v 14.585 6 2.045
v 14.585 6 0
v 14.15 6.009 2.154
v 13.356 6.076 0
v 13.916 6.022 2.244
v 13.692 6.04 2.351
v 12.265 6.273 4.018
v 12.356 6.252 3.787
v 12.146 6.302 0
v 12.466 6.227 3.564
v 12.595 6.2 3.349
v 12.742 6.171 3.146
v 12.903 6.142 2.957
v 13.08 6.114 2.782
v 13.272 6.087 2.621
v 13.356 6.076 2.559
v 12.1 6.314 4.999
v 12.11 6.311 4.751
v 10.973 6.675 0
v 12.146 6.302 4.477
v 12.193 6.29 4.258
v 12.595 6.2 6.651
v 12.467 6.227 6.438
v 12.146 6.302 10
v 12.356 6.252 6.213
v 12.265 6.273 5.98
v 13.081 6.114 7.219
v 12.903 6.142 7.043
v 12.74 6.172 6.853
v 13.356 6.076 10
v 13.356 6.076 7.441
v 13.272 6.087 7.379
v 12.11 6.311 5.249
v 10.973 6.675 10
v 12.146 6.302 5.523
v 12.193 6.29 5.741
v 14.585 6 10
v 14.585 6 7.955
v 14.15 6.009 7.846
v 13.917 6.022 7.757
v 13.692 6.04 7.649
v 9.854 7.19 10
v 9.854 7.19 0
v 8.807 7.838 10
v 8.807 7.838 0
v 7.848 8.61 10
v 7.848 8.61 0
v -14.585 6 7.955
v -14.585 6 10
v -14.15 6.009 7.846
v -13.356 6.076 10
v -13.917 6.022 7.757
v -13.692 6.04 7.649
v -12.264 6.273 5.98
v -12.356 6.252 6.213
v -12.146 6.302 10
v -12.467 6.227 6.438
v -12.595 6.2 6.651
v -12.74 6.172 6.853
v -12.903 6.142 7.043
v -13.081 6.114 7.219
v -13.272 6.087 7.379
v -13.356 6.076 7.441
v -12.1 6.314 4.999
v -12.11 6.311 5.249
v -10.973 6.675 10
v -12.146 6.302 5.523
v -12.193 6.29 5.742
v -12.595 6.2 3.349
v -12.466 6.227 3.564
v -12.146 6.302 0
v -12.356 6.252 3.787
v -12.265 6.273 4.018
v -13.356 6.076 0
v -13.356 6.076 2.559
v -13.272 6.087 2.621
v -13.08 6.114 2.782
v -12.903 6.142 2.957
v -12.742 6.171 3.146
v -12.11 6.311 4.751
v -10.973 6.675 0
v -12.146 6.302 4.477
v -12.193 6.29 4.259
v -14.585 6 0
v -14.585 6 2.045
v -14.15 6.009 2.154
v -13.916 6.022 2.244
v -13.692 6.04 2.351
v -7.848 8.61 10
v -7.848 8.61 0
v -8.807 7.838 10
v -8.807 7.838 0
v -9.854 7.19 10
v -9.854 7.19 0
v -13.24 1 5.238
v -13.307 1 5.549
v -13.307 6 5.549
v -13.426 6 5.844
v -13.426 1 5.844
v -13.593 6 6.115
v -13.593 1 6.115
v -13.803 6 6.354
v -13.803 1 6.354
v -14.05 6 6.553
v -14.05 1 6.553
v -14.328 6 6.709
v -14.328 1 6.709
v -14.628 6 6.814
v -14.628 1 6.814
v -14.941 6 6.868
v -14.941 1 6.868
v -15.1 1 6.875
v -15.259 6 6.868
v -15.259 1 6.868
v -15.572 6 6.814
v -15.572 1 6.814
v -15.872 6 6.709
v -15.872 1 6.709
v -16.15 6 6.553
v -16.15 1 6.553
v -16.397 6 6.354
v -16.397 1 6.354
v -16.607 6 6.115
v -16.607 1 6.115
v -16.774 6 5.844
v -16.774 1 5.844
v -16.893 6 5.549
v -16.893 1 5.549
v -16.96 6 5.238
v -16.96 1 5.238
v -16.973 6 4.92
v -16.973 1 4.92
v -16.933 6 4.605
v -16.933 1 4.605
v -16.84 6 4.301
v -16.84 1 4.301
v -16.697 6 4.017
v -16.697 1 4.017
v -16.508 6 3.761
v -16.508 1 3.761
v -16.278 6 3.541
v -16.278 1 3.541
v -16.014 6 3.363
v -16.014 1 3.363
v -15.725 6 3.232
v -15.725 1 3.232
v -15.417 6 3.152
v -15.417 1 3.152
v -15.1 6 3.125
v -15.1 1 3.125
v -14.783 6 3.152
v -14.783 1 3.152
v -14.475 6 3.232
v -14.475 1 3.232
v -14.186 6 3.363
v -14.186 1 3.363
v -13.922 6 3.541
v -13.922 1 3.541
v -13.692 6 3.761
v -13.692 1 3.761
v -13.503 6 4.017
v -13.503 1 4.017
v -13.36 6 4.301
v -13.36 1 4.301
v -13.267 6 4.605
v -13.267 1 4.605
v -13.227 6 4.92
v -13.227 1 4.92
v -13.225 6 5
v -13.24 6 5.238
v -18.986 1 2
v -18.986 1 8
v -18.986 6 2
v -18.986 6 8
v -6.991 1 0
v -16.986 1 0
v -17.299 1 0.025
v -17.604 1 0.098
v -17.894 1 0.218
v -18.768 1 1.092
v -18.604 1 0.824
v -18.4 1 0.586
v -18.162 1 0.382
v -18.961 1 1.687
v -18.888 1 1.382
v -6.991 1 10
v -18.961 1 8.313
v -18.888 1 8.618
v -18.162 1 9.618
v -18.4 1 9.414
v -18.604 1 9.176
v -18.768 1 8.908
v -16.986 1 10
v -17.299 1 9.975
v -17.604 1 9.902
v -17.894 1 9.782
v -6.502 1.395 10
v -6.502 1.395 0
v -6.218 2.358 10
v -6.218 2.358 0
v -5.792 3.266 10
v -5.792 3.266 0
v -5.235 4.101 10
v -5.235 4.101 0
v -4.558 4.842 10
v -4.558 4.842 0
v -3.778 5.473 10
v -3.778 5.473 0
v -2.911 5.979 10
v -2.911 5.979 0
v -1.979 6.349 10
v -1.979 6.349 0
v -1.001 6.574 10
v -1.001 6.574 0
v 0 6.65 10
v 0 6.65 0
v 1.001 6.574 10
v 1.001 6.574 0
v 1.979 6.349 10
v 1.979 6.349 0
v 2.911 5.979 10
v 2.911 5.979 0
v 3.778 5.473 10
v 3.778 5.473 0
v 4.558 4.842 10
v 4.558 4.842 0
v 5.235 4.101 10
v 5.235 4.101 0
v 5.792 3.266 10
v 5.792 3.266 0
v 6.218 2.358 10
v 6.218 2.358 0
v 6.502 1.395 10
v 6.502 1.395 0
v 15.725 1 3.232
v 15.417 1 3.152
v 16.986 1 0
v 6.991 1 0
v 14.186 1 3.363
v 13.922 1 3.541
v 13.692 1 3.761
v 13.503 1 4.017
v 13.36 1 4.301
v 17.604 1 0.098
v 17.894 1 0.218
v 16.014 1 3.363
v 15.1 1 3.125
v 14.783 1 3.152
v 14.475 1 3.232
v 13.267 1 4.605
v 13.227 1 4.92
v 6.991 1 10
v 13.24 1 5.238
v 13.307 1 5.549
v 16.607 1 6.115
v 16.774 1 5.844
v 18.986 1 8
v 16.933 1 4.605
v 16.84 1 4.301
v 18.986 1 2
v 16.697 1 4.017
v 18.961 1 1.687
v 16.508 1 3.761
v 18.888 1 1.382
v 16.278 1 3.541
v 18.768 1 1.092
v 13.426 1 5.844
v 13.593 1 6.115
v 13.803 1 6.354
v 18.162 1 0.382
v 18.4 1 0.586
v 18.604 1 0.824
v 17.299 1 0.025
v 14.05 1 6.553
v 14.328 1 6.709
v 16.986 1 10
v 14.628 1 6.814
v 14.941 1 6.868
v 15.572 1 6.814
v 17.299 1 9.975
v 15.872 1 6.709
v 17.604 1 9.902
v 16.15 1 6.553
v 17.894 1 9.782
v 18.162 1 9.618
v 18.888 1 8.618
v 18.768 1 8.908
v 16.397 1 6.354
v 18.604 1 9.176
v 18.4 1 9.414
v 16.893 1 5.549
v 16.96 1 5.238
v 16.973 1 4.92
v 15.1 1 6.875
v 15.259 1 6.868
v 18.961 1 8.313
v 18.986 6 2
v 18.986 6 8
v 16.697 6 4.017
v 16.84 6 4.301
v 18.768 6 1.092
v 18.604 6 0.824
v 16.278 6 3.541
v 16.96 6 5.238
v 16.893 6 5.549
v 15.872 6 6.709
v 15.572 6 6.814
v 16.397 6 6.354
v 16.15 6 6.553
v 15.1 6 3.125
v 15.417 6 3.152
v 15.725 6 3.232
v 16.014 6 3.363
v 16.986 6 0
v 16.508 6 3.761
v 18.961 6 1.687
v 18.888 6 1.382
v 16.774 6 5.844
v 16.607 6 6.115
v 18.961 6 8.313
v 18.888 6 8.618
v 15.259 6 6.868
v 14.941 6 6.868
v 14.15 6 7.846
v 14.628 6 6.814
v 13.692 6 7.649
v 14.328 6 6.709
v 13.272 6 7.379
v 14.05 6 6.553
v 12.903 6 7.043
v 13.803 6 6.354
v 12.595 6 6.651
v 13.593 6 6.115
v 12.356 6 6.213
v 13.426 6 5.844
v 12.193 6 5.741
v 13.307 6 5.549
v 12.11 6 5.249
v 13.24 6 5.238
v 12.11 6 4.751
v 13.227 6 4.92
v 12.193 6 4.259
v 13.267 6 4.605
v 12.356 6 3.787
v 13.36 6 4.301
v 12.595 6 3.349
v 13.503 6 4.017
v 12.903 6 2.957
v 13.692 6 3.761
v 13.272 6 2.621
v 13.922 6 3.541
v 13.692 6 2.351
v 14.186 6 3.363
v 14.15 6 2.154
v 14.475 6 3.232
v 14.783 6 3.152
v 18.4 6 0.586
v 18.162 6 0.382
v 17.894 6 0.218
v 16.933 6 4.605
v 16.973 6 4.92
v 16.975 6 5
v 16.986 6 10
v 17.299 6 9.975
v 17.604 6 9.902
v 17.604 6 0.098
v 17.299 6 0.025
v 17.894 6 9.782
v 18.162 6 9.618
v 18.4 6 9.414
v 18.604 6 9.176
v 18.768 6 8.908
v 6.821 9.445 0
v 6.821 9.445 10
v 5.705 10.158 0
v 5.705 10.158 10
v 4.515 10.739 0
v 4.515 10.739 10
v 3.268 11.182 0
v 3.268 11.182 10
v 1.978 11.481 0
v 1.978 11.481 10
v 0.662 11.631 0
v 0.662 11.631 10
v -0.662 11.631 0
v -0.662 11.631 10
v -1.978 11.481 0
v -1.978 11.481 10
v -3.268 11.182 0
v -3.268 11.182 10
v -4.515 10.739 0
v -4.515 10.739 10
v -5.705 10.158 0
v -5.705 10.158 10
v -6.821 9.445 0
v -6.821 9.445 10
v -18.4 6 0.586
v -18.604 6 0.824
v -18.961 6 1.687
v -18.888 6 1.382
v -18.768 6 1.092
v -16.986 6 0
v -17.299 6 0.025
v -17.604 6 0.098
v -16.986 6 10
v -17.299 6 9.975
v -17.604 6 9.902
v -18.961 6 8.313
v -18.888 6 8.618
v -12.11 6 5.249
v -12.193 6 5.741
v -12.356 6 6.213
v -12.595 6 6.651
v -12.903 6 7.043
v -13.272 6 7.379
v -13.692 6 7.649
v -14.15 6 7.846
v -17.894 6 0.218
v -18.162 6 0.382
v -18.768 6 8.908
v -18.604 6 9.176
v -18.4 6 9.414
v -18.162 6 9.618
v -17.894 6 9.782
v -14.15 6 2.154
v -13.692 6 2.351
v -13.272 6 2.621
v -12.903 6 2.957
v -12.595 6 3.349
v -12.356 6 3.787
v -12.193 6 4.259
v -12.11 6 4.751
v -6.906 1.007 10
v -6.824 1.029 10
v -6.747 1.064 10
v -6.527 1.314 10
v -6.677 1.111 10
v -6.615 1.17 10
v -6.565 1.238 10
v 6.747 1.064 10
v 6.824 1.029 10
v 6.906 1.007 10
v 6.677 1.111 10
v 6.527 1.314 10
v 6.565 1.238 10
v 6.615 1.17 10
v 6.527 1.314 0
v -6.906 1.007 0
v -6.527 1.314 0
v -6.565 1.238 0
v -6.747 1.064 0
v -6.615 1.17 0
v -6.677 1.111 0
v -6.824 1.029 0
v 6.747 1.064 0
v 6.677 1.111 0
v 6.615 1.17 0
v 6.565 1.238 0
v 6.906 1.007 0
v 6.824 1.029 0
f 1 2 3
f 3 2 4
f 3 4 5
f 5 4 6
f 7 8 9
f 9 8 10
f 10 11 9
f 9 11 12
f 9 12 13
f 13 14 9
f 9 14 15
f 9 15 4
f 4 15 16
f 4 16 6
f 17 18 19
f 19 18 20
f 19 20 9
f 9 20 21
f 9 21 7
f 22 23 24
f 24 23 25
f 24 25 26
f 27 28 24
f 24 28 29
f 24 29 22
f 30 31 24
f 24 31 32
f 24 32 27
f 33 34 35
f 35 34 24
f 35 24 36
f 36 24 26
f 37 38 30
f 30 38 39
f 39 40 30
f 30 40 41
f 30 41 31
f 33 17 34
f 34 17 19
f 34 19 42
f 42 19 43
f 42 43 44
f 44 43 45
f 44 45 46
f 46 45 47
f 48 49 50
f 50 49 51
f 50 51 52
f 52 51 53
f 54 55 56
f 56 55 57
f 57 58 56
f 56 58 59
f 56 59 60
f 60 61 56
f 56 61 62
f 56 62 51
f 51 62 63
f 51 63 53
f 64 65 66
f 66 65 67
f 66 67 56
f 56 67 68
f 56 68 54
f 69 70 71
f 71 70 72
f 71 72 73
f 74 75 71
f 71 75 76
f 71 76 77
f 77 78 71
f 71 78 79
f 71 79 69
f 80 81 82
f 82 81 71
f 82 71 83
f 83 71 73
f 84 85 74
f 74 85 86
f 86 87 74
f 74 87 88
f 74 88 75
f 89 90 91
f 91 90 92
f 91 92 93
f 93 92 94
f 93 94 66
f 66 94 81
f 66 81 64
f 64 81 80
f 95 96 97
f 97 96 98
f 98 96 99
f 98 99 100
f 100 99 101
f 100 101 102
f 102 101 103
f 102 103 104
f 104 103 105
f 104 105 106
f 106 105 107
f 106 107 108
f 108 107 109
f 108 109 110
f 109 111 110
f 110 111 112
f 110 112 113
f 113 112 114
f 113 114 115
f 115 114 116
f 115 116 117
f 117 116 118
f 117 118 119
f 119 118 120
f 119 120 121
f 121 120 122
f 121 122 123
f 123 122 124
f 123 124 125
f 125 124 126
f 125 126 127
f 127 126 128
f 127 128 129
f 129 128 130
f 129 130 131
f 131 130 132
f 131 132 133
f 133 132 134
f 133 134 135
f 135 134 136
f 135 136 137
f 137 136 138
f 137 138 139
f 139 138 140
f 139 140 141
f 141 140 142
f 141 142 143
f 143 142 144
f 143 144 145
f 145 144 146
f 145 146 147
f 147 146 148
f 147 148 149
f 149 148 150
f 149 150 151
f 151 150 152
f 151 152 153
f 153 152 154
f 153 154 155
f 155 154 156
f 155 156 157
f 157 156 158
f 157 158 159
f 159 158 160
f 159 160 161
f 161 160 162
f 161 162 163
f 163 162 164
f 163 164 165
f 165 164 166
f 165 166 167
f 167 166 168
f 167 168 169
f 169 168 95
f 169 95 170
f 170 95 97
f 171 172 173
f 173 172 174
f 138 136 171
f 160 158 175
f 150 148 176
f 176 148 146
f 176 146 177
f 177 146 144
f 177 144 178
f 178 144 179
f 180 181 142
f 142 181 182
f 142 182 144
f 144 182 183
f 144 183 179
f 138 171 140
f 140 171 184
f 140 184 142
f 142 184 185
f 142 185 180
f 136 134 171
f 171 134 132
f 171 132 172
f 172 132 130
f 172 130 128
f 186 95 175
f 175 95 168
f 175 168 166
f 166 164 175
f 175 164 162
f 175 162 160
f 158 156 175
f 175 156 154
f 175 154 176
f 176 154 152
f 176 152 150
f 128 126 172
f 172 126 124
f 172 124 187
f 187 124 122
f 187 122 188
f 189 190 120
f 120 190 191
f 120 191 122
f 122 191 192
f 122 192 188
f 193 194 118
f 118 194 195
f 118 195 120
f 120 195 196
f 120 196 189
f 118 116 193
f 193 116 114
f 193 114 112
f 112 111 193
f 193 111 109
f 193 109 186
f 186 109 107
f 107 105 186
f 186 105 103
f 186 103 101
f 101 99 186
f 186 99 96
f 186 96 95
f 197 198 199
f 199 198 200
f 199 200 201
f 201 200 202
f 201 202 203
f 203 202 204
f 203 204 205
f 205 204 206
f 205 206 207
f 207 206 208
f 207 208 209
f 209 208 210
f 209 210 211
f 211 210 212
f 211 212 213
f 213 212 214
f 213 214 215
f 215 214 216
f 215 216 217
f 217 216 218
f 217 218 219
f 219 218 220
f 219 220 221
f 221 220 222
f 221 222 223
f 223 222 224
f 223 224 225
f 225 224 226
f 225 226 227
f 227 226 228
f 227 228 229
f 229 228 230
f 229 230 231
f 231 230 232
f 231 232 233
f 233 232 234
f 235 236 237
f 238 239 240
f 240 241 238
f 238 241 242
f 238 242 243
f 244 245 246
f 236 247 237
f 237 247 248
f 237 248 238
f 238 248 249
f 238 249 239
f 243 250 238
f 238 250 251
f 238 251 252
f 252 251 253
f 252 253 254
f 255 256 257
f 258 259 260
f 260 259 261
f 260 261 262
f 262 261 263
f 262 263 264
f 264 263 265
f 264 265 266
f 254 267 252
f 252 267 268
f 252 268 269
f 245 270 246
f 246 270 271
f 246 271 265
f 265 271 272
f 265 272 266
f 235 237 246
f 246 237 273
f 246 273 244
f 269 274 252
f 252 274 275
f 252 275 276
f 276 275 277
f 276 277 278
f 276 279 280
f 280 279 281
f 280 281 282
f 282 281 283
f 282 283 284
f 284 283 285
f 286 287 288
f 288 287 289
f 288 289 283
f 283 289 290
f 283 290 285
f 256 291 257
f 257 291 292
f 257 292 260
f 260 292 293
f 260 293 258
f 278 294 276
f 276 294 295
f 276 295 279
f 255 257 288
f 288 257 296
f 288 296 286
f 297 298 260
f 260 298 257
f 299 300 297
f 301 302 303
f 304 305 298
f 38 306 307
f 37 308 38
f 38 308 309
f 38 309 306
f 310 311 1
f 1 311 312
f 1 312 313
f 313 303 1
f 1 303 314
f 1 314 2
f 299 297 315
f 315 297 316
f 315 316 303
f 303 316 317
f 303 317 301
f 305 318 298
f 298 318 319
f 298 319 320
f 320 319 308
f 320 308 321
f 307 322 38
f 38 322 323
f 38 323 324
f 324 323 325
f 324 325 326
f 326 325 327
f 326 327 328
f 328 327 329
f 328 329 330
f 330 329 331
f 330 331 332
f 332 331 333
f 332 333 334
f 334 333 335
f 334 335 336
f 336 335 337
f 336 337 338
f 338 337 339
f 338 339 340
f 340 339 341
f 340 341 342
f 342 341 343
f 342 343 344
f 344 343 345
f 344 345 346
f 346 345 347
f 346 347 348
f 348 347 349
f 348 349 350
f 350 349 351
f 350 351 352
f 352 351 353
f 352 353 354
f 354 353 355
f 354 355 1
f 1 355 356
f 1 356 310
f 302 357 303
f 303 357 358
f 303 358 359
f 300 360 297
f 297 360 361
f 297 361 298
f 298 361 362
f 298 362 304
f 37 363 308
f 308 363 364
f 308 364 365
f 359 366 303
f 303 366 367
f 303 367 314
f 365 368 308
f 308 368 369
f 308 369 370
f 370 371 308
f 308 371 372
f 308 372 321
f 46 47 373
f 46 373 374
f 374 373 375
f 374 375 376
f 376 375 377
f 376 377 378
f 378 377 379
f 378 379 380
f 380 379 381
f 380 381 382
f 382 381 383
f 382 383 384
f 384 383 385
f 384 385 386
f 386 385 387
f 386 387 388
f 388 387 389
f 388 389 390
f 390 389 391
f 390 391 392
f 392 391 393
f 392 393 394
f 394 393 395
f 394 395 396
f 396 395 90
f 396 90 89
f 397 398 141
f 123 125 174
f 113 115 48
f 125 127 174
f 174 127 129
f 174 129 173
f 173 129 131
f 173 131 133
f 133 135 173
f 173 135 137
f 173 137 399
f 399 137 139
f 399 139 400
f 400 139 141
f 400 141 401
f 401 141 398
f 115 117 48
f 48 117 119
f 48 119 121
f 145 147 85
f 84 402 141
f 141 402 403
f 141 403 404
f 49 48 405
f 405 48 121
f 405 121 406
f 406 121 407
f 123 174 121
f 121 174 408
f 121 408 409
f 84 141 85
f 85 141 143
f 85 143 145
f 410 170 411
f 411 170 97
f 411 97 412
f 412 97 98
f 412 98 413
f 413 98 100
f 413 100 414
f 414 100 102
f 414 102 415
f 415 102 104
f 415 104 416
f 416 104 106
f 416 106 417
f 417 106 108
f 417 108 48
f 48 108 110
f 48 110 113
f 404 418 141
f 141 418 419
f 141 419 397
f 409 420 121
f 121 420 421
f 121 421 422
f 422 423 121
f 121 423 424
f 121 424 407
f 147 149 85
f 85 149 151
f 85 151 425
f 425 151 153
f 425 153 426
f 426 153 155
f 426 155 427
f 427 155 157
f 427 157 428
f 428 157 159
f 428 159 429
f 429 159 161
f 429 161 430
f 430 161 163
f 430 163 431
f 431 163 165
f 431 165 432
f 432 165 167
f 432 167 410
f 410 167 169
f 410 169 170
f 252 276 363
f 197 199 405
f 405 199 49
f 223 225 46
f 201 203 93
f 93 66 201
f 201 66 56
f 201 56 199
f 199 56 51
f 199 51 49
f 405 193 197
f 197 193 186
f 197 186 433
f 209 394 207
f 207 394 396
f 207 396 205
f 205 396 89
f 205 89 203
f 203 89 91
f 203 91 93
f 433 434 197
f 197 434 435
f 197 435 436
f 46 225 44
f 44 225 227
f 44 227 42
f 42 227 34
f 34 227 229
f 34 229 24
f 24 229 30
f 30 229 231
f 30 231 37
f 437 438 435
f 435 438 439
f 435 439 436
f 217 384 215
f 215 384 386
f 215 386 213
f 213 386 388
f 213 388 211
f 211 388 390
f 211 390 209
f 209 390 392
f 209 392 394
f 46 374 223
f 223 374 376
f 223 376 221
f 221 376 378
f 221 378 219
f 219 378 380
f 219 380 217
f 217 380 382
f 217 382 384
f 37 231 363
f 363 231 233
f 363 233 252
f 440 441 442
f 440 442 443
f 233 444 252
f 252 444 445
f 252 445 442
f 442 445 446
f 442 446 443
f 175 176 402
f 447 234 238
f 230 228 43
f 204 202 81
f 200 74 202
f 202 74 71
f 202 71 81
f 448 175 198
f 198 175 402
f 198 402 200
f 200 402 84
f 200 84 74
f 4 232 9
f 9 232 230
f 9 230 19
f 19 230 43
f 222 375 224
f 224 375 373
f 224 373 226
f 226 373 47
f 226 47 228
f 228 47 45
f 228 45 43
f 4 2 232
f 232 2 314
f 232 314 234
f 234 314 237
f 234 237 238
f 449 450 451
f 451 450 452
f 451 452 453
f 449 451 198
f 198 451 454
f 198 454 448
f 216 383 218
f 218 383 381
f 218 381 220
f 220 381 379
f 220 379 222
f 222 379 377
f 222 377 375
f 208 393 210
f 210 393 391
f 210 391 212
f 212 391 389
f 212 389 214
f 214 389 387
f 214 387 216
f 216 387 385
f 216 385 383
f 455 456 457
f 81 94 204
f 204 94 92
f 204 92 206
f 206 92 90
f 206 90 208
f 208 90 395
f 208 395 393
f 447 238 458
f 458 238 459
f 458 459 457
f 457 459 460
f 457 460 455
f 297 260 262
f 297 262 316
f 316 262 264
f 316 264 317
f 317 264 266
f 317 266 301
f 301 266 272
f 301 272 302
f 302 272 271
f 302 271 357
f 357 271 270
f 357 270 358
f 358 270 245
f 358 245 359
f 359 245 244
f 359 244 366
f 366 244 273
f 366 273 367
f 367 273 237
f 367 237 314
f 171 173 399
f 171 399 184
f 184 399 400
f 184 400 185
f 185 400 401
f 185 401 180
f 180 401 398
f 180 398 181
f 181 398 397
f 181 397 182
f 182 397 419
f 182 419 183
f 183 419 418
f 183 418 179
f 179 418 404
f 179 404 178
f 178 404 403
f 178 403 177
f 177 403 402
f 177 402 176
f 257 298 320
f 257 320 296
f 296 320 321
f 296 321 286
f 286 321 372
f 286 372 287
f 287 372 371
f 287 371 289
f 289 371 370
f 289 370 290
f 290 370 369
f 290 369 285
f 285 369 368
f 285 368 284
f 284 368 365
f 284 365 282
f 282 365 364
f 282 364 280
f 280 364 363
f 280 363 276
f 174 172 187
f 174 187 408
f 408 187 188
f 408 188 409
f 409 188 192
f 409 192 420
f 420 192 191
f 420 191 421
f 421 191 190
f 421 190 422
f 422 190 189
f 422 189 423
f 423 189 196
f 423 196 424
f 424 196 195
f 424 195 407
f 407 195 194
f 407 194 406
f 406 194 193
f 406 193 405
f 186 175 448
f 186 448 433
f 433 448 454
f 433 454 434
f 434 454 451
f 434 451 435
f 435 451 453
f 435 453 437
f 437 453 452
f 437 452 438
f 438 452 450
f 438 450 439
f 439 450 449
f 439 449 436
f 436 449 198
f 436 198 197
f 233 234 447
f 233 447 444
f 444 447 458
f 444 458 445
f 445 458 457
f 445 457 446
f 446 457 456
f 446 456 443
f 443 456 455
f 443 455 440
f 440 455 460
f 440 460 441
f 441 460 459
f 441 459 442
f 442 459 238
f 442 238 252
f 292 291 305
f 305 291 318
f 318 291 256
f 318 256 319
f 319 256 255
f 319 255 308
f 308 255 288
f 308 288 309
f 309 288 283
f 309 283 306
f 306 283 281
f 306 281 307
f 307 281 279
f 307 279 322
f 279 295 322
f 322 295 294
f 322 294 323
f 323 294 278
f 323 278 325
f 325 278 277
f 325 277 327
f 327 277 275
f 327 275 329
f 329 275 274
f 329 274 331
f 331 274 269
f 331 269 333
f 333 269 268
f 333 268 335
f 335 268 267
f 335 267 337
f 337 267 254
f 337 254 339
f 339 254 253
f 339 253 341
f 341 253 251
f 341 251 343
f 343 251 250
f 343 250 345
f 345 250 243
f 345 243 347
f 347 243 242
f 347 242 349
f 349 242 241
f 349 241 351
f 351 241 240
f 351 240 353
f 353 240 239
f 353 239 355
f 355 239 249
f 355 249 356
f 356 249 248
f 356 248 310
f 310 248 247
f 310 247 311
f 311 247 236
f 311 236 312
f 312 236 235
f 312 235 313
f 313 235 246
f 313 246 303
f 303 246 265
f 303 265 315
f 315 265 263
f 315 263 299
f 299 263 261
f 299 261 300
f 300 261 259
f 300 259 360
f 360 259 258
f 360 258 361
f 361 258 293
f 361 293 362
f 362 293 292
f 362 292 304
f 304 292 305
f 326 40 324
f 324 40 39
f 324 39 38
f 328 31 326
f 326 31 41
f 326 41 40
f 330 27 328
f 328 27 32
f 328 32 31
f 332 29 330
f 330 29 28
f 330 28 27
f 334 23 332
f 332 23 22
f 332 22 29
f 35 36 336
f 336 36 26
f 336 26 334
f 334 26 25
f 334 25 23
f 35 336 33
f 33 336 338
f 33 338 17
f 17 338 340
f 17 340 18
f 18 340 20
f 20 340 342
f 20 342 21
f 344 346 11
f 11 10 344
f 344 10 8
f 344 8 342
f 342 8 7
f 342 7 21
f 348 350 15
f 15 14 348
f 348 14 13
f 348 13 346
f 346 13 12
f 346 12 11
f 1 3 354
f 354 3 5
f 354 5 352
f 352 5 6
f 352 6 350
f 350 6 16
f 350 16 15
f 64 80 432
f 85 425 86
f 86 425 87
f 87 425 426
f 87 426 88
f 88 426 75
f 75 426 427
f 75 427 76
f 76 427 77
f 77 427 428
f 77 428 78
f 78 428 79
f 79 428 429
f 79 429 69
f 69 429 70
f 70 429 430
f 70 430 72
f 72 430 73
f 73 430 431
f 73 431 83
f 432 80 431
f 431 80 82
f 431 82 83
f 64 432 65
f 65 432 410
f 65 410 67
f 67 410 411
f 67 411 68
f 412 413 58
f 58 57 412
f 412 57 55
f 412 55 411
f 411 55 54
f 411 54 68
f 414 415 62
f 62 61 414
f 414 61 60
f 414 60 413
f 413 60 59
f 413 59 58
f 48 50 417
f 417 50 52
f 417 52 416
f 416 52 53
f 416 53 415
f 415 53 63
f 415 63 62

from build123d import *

# Parameters (mm, degrees)
BOSS_EXTRUDE1_DEPTH = 10
FILLET1_R           = 2
FILLET3_R           = 0.5
FILLET4_R           = 10
SKETCH2_R           = 1.875
CUT_EXTRUDE1_DEPTH  = 25.417106227
CUT_EXTRUDE2_START  = 6
SKETCH3_R           = 3
CUT_EXTRUDE2_DEPTH  = 10


with BuildPart() as part:
    # Sketch1 → Boss-Extrude1 (new body)
    with BuildSketch(Plane.XY):
        with BuildLine():
            Line((-18.986115361, 1), (-6.5743821, 1))
            ThreePointArc((-6.5743821, 1), (0, 6.65), (6.5743821, 1))
            Line((6.5743821, 1), (18.986115361, 1))
            Line((18.986115361, 1), (18.986115361, 6))
            Line((18.986115361, 6), (9.986115361, 6))
            ThreePointArc((9.986115361, 6), (0, 11.65), (-9.986115361, 6))
            Line((-9.986115361, 6), (-18.986115361, 6))
            Line((-18.986115361, 6), (-18.986115361, 1))
        make_face()
    extrude(amount=BOSS_EXTRUDE1_DEPTH)

    # Fillet1
    fillet1_edges = [part.edges().sort_by_distance(p)[0] for p in [
        (-18.986115361, 3.5, 0),
        (18.986115361, 3.5, 10),
        (-18.986115361, 3.5, 10),
        (18.986115361, 3.5, 0),
    ]]
    fillet(fillet1_edges, radius=FILLET1_R)

    # Fillet3
    fillet3_edges = [part.edges().sort_by_distance(p)[0] for p in [
        (6.5743821, 1, 5),
        (-6.5743821, 1, 5),
    ]]
    fillet(fillet3_edges, radius=FILLET3_R)

    # Fillet4
    fillet4_edges = [part.edges().sort_by_distance(p)[0] for p in [
        (-9.986115361, 6, 5),
        (9.986115361, 6, 5),
    ]]
    fillet(fillet4_edges, radius=FILLET4_R)

    # Sketch2 → Cut-Extrude1 (cut, through all)
    with BuildSketch(Plane(origin=(0, 0, 0), x_dir=(1, 0, 0), z_dir=(0, 1, 0))):
        with Locations(Location((-15.1, -5, 0), (0, 0, 74.058148942))):
            Circle(SKETCH2_R)
        with Locations(Location((15.1, -5, 0), (0, 0, 105.941851061))):
            Circle(SKETCH2_R)
    extrude(amount=CUT_EXTRUDE1_DEPTH, mode=Mode.SUBTRACT)

    # Sketch3 → Cut-Extrude2 (cut)
    with BuildSketch(Plane(origin=(0, 0, 0), x_dir=(1, 0, 0), z_dir=(0, 1, 0)).offset(CUT_EXTRUDE2_START)):
        with Locations((-15.1, -5)):
            Circle(SKETCH3_R)
        with Locations((15.1, -5)):
            Circle(SKETCH3_R)
    extrude(amount=CUT_EXTRUDE2_DEPTH, mode=Mode.SUBTRACT)


solid = part.part
